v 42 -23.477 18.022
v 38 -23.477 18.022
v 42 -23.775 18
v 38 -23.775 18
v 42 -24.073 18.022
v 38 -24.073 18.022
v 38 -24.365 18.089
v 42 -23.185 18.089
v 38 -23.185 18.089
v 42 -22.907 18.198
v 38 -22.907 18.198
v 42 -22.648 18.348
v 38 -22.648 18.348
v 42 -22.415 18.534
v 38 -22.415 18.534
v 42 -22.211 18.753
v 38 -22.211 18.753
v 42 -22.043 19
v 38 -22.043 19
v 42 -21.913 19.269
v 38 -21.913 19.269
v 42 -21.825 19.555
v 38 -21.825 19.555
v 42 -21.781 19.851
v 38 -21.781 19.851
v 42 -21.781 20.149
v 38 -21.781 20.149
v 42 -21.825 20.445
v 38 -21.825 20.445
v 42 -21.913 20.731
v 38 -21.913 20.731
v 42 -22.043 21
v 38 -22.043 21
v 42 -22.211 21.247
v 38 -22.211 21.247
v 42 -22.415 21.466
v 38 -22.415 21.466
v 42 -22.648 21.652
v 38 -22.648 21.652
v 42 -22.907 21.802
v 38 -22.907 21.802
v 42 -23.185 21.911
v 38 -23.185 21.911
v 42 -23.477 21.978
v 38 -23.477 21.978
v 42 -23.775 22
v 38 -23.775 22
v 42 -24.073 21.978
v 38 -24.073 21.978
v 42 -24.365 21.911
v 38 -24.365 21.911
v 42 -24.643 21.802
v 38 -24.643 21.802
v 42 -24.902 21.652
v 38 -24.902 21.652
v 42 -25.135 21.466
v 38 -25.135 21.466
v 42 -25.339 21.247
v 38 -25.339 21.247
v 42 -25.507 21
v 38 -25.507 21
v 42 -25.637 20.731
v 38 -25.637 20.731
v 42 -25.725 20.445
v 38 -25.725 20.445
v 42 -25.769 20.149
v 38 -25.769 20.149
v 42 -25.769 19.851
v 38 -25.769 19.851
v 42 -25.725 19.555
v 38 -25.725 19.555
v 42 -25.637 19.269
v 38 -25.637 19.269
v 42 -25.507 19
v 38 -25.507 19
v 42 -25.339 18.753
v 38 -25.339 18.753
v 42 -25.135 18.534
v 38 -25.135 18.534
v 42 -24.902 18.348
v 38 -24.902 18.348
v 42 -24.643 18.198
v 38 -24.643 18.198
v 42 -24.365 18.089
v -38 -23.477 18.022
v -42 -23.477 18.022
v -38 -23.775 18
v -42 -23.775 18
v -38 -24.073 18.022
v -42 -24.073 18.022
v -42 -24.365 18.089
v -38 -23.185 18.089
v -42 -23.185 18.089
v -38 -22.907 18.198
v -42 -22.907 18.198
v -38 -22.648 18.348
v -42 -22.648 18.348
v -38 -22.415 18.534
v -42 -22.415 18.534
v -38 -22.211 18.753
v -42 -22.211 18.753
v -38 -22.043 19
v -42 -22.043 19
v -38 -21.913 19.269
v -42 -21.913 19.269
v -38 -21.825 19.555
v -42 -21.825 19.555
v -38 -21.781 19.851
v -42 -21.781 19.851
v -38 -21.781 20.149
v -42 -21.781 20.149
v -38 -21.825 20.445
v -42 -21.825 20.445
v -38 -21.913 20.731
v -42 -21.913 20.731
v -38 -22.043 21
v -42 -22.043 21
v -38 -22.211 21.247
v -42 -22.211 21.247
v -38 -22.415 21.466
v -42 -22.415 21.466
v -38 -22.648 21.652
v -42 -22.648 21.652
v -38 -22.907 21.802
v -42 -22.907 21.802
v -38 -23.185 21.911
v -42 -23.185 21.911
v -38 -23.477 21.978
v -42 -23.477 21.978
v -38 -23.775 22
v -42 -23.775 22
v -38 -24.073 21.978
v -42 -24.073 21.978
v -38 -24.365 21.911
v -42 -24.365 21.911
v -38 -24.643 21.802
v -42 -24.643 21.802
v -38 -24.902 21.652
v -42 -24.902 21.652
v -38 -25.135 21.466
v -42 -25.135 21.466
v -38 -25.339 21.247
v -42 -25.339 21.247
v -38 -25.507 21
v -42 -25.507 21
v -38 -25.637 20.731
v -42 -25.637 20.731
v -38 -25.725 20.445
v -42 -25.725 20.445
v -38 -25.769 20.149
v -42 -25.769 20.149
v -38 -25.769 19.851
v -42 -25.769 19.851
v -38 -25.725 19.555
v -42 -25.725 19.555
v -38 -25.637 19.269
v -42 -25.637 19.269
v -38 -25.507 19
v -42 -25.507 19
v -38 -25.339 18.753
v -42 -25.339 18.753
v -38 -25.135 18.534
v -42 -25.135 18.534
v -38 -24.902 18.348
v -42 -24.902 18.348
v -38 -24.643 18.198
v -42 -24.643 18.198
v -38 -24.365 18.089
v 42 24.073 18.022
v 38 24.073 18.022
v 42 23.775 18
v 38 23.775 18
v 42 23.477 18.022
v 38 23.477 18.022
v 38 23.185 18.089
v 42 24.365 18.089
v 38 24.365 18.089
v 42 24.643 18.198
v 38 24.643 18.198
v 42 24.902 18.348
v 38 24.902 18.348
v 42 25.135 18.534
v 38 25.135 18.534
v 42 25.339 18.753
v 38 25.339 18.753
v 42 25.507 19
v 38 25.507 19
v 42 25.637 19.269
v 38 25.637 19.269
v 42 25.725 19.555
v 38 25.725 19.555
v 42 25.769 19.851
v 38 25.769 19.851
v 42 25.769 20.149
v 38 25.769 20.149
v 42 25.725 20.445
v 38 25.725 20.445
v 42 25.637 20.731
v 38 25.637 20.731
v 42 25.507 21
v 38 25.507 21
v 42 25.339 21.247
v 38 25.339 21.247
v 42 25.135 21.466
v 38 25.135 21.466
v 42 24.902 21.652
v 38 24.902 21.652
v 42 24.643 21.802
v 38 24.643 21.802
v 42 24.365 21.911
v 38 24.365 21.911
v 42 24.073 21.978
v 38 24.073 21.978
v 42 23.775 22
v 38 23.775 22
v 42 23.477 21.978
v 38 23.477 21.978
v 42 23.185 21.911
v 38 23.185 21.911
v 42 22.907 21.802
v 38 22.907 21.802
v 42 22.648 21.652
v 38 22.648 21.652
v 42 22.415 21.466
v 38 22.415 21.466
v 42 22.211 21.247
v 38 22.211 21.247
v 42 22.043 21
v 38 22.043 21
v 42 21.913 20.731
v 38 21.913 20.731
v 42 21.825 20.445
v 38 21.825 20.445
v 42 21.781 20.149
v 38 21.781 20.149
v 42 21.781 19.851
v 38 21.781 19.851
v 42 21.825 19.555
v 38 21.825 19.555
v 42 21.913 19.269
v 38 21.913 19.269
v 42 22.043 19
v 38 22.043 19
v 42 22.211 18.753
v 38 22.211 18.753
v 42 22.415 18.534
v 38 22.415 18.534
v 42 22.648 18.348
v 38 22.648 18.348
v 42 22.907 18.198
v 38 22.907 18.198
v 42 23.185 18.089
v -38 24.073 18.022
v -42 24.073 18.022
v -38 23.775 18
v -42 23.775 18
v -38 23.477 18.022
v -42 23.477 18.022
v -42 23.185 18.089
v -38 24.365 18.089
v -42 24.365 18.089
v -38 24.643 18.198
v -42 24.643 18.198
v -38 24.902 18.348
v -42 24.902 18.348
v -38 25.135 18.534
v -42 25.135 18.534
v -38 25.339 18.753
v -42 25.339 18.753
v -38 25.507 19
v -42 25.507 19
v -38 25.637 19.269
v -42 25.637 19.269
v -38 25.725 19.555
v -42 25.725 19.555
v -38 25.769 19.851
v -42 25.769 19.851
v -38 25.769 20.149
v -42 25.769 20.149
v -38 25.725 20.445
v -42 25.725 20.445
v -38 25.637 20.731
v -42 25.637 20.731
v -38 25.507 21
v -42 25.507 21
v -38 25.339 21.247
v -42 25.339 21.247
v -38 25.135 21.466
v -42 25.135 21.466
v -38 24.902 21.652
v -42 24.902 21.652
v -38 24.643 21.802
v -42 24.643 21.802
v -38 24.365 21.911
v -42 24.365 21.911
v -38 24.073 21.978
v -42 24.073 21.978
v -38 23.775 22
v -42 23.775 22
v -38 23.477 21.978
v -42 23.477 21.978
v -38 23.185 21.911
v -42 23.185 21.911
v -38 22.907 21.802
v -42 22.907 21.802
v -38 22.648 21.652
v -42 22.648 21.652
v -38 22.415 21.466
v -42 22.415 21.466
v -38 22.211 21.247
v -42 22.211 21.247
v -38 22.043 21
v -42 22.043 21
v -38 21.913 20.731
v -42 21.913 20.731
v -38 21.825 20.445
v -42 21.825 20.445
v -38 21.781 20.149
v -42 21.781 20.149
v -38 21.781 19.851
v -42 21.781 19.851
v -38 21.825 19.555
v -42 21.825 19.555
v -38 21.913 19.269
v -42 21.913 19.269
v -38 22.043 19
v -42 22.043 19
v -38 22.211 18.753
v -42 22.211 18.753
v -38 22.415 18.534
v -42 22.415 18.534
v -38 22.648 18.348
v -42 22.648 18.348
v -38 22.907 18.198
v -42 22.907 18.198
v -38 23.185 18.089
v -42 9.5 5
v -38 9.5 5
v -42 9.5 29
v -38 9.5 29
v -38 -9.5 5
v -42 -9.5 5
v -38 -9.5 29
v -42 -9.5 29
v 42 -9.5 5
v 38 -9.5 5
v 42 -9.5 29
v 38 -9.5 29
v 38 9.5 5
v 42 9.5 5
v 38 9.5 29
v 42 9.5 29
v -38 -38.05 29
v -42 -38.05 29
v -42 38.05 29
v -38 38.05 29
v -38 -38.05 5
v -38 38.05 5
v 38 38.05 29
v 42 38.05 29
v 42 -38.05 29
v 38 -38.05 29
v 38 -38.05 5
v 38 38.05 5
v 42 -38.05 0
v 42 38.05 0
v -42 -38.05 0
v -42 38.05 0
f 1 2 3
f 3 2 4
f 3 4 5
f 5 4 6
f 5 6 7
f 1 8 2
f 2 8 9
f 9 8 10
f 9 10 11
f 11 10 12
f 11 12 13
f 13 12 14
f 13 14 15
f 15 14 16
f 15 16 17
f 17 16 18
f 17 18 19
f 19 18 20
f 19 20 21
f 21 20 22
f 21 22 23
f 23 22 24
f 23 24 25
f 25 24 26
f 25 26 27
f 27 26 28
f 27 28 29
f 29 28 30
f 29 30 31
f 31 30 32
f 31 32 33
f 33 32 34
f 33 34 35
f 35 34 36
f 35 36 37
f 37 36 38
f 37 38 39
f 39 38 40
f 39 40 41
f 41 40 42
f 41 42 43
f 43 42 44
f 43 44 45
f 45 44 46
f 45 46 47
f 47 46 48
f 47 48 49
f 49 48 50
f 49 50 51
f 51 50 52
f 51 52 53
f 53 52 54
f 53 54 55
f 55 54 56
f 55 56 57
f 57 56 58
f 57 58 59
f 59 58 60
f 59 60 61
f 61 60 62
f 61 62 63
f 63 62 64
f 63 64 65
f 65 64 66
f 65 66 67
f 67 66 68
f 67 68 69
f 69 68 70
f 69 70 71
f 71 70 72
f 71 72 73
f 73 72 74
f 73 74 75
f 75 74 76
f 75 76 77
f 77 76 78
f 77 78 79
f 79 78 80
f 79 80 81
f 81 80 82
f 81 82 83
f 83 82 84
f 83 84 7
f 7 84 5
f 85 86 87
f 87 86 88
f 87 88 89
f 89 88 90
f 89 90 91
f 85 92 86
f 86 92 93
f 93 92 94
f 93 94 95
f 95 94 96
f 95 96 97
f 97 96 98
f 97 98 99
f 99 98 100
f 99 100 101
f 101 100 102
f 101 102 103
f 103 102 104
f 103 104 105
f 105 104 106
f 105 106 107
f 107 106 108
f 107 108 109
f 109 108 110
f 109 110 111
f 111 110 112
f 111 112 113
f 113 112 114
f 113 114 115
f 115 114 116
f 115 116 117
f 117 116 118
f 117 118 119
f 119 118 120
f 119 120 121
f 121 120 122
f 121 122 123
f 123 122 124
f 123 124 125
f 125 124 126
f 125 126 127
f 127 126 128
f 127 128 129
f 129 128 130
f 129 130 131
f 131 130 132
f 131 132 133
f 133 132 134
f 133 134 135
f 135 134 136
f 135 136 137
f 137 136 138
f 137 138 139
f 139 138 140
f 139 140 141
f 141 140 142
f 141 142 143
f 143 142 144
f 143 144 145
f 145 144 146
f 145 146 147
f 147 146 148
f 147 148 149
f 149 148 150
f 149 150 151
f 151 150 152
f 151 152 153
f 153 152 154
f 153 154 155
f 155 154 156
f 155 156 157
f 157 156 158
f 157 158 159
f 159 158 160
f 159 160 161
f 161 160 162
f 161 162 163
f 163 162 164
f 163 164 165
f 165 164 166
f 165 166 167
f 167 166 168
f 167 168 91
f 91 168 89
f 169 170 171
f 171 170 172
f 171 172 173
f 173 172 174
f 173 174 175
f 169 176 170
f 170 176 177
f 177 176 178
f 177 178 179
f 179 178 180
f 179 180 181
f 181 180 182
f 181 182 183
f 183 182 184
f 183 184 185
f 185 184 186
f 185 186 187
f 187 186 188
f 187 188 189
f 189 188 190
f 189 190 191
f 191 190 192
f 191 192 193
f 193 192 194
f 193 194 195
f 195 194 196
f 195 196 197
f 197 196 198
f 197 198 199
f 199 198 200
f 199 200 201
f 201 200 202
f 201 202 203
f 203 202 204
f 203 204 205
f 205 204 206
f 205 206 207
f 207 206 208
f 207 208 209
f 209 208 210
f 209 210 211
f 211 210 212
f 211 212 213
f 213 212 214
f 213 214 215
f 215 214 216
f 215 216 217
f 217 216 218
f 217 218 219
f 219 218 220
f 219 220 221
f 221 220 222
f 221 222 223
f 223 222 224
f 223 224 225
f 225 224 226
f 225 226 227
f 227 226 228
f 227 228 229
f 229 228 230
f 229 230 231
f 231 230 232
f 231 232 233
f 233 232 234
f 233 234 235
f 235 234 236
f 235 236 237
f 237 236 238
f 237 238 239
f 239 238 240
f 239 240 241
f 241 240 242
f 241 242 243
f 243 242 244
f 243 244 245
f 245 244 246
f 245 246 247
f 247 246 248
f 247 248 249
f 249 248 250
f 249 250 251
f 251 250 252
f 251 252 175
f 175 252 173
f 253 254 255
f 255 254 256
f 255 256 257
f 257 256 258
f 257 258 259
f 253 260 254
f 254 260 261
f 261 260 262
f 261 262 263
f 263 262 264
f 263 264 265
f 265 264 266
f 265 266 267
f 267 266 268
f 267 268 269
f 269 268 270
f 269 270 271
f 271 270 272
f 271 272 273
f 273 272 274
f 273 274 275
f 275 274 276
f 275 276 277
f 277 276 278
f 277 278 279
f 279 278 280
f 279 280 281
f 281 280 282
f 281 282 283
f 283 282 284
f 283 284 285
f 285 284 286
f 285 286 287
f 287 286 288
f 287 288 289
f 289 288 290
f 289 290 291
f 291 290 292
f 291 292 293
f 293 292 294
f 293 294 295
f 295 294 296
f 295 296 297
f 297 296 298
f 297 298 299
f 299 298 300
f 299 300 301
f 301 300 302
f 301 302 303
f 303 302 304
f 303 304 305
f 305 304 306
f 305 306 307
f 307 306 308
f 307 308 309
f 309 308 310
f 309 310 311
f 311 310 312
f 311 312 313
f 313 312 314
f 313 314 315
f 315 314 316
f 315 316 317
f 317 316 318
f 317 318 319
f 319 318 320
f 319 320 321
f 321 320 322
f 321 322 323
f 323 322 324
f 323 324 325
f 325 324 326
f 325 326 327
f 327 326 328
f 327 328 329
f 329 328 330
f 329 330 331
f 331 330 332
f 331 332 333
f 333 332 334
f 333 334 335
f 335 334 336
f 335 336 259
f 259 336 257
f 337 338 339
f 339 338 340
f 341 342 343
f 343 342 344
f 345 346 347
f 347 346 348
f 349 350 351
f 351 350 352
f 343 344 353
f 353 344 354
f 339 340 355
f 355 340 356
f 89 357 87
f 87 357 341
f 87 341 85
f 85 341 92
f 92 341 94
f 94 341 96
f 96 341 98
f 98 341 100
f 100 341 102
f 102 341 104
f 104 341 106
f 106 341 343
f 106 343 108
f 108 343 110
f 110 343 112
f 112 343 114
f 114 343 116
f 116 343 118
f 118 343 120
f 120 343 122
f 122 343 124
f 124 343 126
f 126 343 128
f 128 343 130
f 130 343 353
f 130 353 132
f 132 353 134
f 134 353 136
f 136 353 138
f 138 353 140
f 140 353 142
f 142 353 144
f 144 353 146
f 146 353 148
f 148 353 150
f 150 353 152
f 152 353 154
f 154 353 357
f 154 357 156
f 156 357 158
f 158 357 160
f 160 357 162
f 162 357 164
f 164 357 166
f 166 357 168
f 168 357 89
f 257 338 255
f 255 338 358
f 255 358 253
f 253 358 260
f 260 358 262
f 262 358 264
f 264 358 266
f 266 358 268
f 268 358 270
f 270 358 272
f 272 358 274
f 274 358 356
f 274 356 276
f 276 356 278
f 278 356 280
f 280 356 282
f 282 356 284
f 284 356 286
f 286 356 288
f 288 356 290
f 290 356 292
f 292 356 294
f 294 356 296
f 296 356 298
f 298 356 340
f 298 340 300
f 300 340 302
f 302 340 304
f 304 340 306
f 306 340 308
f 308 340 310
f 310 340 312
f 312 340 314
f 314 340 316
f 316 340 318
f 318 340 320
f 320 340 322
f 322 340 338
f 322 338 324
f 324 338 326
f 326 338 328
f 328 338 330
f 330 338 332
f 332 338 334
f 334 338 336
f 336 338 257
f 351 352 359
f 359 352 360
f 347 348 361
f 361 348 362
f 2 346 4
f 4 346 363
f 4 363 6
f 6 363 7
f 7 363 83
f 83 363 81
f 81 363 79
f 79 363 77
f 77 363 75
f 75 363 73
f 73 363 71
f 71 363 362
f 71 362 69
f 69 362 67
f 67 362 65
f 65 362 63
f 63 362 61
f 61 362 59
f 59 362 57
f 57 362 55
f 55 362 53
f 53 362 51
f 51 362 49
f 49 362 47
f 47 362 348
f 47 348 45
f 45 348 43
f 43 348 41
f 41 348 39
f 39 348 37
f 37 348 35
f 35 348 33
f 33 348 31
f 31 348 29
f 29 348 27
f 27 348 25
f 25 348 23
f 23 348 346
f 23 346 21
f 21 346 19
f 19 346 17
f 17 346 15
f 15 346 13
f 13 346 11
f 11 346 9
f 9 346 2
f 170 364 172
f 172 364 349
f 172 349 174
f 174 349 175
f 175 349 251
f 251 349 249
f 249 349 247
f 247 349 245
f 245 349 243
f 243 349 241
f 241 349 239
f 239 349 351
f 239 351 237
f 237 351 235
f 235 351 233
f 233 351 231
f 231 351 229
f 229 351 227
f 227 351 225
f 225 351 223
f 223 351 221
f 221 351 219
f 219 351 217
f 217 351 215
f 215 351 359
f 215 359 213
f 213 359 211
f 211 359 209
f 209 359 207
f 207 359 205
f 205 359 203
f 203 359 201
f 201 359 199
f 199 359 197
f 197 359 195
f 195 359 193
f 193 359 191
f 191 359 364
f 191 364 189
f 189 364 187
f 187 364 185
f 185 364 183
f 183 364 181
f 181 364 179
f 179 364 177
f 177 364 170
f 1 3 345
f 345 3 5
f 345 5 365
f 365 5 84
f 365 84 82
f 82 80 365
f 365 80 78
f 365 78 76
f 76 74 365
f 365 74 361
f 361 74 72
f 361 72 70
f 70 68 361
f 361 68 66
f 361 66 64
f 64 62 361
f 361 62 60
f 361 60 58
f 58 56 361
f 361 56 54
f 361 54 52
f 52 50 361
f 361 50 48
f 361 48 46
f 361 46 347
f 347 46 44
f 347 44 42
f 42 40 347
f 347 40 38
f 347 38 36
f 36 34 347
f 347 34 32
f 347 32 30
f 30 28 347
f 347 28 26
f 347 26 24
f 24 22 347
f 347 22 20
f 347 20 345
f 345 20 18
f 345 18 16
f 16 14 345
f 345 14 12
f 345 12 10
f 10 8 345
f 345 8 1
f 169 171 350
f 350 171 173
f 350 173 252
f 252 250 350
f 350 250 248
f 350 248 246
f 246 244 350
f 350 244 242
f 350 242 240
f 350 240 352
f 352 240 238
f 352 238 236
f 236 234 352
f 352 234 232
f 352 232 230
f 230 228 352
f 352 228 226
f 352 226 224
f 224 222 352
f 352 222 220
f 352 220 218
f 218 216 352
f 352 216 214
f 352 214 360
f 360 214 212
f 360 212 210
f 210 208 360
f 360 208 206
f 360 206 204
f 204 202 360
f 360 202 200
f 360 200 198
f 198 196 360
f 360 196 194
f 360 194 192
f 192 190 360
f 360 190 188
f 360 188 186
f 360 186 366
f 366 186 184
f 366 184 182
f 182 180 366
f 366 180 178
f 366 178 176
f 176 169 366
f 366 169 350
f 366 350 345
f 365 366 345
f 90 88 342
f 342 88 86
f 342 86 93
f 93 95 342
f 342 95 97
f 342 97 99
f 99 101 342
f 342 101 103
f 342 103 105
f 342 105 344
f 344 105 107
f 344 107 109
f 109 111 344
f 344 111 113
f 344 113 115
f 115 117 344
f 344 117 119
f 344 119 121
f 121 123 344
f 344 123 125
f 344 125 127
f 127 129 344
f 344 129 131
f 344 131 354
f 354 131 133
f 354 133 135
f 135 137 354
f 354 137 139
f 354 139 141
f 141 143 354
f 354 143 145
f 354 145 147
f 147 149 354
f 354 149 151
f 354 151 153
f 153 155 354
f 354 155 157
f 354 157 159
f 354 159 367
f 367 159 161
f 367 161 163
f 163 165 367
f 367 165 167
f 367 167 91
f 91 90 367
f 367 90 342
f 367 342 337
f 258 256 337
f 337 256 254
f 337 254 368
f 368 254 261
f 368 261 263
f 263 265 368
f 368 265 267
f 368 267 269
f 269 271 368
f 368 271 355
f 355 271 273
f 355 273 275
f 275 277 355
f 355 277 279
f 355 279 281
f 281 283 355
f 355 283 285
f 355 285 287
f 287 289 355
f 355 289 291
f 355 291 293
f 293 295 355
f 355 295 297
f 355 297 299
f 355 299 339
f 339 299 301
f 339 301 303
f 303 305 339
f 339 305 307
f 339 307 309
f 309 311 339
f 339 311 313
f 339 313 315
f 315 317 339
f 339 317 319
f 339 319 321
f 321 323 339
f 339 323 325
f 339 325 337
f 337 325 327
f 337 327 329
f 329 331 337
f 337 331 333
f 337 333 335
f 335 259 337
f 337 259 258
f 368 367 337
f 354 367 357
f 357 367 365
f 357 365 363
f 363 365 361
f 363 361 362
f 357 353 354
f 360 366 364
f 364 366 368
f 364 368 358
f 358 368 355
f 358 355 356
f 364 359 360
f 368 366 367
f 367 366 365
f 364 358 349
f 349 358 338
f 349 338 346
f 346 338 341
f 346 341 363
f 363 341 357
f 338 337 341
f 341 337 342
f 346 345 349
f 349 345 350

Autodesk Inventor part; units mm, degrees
ref_plane "YZ Plane" through (0, 0, 0) normal (1, 0, 0) x (0, 1, 0)
ref_plane "XZ Plane" through (0, 0, 0) normal (0, 1, 0) x (-1, 0, 0)
ref_plane "XY Plane" through (0, 0, 0) normal (0, 0, 1) x (1, 0, 0)
sketch "Эскиз1" plane through (0, 0, 0) normal (0, 0, 1) x (1, 0, 0)
  line L0 (-38, 52.38) -> (38, 52.38) construction
  line L1 (38, 52.38) -> (38, -52.38) construction
  line L2 (38, -52.38) -> (-38, -52.38) construction
  line L3 (-38, -52.38) -> (-38, 52.38) construction
  line L4 (-26.6205, -33.05) -> (26.6205, -33.05) construction
  line L5 (26.6205, -33.05) -> (26.6205, 33.05) construction
  line L6 (26.6205, 33.05) -> (-26.6205, 33.05) construction
  line L7 (-26.6205, 33.05) -> (-26.6205, -33.05) construction
  line L8 (0, 33.05) -> (0, 38.05) construction
  line L9 (0, -33.05) -> (0, -38.05) construction
  line L10 (-38, 38.05) -> (38, 38.05)
  line L11 (38, 38.05) -> (38, -38.05)
  line L12 (38, -38.05) -> (-38, -38.05)
  line L13 (-38, -38.05) -> (-38, 38.05)
  dimension "d0" = 76
  dimension "d1" = 104.76
  dimension "d2" = 53.241
  dimension "d3" = 66.1
  dimension "d4" = 5
  dimension "d5" = 5
extrude "Выдавливание1" add sketch "Эскиз1" along normal blind 5
sketch "Эскиз2" plane through (0, 0, 5) normal (0, 0, 1) x (1, 0, 0)
  line L0 (38, 38.05) -> (38, -38.05) projected
  line L1 (-38, -38.05) -> (-38, 38.05) projected
  line L2 (-38, 38.05) -> (-38, -38.05) projected
  line L3 (-38, -38.05) -> (-42, -38.05)
  line L4 (38, 38.05) -> (42, 38.05)
  line L5 (42, -38.05) -> (42, 38.05)
  line L6 (-42, 38.05) -> (-42, -38.05)
  line L7 (-38, -38.05) -> (-38, 38.05)
  line L8 (38, 38.05) -> (-38, 38.05) projected
  line L9 (38, 38.05) -> (38, -38.05)
  line L10 (42, 38.05) -> (38, 38.05)
  line L11 (-38, 38.05) -> (-42, 38.05)
  line L12 (-42, -38.05) -> (-38, -38.05)
  line L13 (38, -38.05) -> (42, -38.05)
  point P0 (0, 0)
  dimension "d8" = 4
  dimension "d9" = 4
extrude "Выдавливание2" add sketch "Эскиз2" along normal blind 24 and the other way blind 5
sketch "Эскиз3" plane through (0, 0, 29) normal (0, 0, 1) x (1, 0, 0)
  line L0 (38, 38.05) -> (38, -38.05) projected
  line L1 (38, -38.05) -> (42, -38.05) projected
  line L2 (42, -38.05) -> (42, 38.05) projected
  line L3 (42, 38.05) -> (38, 38.05) projected
  line L4 (42, 9.5) -> (38, 9.5)
  line L5 (38, 9.5) -> (38, -9.5)
  line L6 (38, -9.5) -> (42, -9.5)
  line L7 (42, -9.5) -> (42, 9.5)
  line L8 (42, 9.5) -> (38, -9.5) construction
  line L9 (38, 9.5) -> (42, -9.5) construction
  line L10 (0, 0) -> (0, -84) construction
  line L11 (-42, 9.5) -> (-38, 9.5)
  line L12 (-38, -9.5) -> (-42, -9.5)
  line L13 (-38, 9.5) -> (-38, -9.5) construction
  line L14 (-38, 38.05) -> (-38, -38.05) construction
  line L15 (-42, 9.5) -> (-42, -9.5) construction
  line L16 (-42, 38.05) -> (-42, -38.05) construction
  line L17 (-38, 9.5) -> (-38, -9.5)
  line L18 (-42, -9.5) -> (-42, 9.5)
  point P0 (40, 0)
  dimension "d14" = 4
  dimension "d15" = 19
extrude "Выдавливание3" cut sketch "Эскиз3" against normal up to surface (24 mm away) contours L4 L2 L6 L0 | L11 L17 L12 L18
sketch "Эскиз4" plane through (-42, 38.05, 0) normal (0, 1, 0) x (1, 0, 0)
  line L0 (0, 0) -> (84, 0) projected
  line L1 (0, 0) -> (0, -29) projected
  line L2 (4, -29) -> (0, -29) projected
  line L3 (4, -29) -> (4, -5) projected
  line L4 (80, -5) -> (4, -5) projected
  line L5 (80, -29) -> (80, -5) projected
  line L6 (84, -29) -> (80, -29) projected
  line L7 (84, 0) -> (84, -29) projected
  point P0 (42, 0)
sketch "Эскиз5" plane through (42, -38.05, 0) normal (1, 0, 0) x (0, 0, -1)
  line L0 (-29, 0) -> (-29, 28.55) projected
  line L1 (-29, 14.275) -> (-20, 14.275) construction
  circle A0 centre (-20, 14.275) radius 2
  line L2 (-5, 28.55) -> (-5, 47.55) construction
  line L3 (-5, 38.05) -> (-24.5, 38.05) construction
  circle A1 centre (-20, 61.825) radius 2
  point P0 (0, 38.05)
  dimension "d18" = 9
  dimension "d19" = 4
extrude "Выдавливание4" cut sketch "Эскиз5" against normal up to surface (84 mm away)
properties part number "Ard"
